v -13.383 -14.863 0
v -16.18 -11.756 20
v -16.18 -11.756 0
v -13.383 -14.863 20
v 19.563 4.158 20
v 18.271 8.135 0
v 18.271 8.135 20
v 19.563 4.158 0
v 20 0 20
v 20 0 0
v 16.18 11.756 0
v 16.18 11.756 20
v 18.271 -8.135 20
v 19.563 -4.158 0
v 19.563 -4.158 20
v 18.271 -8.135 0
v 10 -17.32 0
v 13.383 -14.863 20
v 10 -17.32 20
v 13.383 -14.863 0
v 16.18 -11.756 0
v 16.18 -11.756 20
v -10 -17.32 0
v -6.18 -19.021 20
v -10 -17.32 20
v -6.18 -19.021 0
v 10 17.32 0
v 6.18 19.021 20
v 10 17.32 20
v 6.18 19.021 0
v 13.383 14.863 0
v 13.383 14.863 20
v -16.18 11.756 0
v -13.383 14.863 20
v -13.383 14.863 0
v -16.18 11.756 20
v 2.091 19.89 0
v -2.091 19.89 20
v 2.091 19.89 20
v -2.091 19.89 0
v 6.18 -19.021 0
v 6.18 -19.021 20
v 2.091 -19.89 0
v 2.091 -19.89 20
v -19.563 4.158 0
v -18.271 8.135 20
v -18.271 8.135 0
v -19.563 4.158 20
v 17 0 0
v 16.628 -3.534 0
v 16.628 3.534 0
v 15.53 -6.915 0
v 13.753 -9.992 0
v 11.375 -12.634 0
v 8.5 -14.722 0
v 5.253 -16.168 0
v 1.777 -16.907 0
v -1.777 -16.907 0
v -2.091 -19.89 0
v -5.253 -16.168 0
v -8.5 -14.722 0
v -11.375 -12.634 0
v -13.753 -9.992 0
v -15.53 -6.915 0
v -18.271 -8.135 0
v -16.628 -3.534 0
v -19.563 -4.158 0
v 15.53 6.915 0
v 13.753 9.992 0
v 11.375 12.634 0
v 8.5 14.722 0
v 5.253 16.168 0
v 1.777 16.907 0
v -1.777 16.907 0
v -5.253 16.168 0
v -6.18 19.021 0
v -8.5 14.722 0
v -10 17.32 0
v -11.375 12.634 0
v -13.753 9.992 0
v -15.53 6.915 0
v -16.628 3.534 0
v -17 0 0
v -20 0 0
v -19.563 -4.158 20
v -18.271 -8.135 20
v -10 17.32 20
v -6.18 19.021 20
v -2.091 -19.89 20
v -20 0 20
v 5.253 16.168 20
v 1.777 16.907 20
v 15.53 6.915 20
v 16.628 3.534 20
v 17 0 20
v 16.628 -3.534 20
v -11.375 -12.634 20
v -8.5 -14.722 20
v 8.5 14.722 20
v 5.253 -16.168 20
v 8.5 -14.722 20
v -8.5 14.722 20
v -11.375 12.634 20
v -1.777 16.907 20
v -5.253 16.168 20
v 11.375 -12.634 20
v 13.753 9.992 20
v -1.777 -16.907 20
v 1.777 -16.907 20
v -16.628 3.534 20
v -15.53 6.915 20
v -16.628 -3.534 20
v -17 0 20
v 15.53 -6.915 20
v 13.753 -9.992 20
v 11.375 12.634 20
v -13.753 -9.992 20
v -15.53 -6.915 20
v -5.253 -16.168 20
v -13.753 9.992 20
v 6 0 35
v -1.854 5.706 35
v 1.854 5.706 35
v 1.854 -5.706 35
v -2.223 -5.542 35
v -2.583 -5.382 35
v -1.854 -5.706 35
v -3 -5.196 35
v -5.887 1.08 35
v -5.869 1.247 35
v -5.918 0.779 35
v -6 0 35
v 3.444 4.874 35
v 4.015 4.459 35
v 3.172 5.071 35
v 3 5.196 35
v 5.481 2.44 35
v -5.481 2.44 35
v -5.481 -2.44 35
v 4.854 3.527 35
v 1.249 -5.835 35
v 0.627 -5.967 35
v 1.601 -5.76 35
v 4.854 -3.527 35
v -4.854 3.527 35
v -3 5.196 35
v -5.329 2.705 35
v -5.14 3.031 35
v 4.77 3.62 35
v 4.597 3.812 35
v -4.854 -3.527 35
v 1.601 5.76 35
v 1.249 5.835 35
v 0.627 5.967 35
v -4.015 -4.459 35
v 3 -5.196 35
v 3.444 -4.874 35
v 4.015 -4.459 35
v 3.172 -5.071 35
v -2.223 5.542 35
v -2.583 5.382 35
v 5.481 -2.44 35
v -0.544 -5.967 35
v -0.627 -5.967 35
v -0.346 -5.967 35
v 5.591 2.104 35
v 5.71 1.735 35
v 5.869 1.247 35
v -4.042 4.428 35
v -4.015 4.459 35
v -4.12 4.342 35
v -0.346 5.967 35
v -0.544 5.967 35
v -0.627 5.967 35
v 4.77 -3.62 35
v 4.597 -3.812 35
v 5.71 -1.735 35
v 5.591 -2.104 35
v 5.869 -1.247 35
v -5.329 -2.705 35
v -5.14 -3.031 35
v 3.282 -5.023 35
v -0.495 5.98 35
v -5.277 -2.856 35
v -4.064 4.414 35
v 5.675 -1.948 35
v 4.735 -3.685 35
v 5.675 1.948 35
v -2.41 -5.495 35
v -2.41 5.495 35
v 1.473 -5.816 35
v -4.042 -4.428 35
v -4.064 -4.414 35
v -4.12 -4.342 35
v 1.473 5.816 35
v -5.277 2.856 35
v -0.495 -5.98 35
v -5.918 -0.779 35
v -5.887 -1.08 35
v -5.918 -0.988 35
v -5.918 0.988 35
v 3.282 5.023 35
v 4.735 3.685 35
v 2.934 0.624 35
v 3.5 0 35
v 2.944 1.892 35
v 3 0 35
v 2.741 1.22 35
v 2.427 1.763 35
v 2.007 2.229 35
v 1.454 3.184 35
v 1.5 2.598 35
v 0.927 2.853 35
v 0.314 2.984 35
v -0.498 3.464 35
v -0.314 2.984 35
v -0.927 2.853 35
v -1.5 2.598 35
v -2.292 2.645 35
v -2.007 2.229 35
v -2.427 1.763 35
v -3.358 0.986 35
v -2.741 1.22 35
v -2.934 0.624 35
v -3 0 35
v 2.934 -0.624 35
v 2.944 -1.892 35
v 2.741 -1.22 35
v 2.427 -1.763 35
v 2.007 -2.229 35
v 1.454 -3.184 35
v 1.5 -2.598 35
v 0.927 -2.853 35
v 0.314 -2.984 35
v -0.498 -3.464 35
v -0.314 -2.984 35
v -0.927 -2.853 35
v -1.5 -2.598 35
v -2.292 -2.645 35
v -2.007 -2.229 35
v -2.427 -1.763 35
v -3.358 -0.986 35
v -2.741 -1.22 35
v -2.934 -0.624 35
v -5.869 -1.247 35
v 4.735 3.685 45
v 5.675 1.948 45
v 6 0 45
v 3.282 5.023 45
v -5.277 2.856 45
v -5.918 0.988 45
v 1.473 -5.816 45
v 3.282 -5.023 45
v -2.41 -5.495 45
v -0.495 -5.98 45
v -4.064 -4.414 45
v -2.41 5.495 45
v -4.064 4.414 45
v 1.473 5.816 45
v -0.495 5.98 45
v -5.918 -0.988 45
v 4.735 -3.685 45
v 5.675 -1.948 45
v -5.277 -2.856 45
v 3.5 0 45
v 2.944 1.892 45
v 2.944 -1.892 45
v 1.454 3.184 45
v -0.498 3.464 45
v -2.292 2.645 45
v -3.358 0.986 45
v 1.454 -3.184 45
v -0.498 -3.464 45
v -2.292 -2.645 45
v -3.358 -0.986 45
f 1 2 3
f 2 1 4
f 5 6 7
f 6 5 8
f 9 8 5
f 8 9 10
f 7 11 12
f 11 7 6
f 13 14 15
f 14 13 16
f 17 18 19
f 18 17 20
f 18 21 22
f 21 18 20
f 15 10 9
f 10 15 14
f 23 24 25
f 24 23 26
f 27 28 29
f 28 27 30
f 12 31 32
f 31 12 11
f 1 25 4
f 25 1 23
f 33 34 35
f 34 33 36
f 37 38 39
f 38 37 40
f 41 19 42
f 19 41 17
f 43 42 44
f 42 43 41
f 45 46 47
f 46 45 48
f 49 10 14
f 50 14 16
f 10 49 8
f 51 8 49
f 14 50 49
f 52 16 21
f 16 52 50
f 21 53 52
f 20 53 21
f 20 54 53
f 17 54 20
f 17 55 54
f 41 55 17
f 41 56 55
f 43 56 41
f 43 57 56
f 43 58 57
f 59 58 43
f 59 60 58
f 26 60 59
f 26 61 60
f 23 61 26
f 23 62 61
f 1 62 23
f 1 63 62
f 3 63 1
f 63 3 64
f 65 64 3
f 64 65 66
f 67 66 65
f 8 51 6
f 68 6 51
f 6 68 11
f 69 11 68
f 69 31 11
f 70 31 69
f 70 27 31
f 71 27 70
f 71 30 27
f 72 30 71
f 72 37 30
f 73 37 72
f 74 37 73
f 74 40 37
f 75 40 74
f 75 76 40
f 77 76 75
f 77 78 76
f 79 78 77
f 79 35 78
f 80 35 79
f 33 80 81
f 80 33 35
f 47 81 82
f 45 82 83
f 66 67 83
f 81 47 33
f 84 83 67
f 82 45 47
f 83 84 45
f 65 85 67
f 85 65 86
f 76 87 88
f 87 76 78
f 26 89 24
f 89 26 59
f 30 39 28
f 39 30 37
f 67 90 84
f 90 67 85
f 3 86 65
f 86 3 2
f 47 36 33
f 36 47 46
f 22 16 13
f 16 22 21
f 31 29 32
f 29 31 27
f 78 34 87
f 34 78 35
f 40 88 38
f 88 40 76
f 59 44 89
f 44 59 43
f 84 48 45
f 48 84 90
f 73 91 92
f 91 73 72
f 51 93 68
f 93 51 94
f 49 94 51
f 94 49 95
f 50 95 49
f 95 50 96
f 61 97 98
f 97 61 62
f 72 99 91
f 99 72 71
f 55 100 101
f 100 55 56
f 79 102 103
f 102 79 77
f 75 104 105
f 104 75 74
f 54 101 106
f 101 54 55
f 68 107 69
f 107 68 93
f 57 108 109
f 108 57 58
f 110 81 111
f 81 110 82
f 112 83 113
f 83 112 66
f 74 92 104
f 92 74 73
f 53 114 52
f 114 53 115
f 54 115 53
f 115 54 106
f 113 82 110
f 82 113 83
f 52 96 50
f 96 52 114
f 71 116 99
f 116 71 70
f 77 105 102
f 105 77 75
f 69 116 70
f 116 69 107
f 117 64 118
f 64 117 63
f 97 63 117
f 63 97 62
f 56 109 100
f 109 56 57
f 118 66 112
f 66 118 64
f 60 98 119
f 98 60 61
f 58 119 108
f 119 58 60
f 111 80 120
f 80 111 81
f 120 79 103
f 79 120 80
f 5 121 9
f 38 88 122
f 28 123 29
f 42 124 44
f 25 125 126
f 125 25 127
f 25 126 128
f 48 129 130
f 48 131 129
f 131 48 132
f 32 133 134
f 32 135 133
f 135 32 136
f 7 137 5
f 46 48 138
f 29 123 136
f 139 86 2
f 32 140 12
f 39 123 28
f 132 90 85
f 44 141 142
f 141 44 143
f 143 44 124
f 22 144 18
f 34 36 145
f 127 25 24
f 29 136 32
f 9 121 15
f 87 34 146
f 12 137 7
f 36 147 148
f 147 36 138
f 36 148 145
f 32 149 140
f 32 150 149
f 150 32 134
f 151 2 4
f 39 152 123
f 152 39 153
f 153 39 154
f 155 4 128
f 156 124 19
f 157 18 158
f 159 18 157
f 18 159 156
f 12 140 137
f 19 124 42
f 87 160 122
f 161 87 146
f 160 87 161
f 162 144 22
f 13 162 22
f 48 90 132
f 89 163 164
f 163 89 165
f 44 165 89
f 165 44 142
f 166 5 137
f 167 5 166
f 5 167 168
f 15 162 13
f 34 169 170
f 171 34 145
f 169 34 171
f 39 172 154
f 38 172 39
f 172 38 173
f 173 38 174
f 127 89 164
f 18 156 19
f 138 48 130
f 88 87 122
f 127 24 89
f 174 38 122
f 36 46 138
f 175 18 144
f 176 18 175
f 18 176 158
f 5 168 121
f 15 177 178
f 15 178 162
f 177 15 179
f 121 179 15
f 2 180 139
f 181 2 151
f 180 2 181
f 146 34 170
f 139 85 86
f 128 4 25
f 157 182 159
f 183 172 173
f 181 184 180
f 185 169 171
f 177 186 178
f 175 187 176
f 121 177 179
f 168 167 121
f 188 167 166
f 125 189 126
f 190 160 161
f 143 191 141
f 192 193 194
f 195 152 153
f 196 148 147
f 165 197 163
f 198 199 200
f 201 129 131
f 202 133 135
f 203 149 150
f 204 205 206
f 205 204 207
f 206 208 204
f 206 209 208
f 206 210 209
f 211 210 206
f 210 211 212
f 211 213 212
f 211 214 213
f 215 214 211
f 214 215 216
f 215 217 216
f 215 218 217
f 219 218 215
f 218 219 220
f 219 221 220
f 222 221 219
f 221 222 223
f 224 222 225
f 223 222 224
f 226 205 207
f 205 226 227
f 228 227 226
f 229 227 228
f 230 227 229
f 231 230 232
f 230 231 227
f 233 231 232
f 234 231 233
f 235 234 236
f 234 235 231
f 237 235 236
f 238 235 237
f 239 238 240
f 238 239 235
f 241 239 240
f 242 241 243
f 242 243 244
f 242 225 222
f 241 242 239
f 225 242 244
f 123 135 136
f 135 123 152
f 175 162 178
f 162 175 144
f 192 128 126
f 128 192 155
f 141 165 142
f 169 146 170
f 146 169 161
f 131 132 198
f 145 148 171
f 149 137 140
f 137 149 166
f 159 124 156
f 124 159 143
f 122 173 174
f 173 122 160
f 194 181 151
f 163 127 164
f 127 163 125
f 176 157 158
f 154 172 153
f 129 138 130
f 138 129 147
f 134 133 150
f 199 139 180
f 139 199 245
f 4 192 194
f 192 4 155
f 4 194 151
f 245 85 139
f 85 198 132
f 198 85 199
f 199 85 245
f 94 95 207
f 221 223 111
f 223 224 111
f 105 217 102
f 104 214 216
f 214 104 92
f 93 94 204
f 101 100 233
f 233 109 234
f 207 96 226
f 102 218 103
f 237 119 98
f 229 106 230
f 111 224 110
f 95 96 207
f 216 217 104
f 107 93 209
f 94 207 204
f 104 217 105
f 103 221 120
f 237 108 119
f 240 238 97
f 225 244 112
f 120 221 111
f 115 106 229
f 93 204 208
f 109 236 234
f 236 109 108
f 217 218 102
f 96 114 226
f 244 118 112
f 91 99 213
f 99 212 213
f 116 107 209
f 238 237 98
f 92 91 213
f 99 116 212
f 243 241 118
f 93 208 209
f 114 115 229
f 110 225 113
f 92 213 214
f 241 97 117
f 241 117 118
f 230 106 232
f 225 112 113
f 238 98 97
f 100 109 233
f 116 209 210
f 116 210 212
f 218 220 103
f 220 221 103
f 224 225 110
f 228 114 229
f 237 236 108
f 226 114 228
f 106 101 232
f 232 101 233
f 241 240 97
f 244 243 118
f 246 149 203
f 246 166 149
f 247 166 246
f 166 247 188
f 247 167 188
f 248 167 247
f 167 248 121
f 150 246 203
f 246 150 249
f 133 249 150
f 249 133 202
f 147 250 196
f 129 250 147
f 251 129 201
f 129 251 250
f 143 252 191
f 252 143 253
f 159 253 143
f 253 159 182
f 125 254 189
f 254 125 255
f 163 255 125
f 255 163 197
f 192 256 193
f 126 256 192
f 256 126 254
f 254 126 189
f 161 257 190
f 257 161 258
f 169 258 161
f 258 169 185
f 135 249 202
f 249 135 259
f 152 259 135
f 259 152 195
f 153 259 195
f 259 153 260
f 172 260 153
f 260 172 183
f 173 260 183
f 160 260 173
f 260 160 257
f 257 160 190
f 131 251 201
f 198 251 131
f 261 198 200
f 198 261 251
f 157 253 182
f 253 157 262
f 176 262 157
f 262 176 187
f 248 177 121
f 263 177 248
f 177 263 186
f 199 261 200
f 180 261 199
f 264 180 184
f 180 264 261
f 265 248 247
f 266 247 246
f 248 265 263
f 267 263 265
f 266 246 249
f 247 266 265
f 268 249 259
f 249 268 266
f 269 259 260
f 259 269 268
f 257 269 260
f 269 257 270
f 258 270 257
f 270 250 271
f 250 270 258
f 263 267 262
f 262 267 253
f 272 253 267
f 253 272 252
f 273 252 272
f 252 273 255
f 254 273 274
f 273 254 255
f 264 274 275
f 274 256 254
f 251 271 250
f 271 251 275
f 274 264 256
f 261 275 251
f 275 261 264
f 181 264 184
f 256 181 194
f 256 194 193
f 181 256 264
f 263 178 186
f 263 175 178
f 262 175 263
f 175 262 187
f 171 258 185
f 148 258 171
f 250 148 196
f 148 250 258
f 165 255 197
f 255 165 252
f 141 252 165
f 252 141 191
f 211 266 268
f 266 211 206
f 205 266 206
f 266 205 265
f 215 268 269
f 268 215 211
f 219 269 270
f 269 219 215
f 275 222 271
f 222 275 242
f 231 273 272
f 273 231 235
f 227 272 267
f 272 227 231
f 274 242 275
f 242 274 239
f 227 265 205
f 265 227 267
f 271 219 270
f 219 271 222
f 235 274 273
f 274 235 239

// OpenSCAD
r1=20;
r2=6;
wall1=2.5;
wall2=3;

h1=15;
h2=10;
h3=20;

translate([0,0,h3]) {
    difference() {
        cylinder(r1=r1,r2=r2,h=h1);
        cylinder(r1=r1-wall2,r2=r2-wall2,h=h1);
    }
    translate([0,0,h1]) difference() {
        cylinder(r1=r2,r2=r2,h=h2);
        cylinder(r1=r2-wall1,r2=r2-wall1,h=h2);
    }
}
difference() {
    cylinder(r1=r1,r2=r1,h=h3);
    cylinder(r1=r1-wall2,r2=r1-wall2,h=h3);
}
